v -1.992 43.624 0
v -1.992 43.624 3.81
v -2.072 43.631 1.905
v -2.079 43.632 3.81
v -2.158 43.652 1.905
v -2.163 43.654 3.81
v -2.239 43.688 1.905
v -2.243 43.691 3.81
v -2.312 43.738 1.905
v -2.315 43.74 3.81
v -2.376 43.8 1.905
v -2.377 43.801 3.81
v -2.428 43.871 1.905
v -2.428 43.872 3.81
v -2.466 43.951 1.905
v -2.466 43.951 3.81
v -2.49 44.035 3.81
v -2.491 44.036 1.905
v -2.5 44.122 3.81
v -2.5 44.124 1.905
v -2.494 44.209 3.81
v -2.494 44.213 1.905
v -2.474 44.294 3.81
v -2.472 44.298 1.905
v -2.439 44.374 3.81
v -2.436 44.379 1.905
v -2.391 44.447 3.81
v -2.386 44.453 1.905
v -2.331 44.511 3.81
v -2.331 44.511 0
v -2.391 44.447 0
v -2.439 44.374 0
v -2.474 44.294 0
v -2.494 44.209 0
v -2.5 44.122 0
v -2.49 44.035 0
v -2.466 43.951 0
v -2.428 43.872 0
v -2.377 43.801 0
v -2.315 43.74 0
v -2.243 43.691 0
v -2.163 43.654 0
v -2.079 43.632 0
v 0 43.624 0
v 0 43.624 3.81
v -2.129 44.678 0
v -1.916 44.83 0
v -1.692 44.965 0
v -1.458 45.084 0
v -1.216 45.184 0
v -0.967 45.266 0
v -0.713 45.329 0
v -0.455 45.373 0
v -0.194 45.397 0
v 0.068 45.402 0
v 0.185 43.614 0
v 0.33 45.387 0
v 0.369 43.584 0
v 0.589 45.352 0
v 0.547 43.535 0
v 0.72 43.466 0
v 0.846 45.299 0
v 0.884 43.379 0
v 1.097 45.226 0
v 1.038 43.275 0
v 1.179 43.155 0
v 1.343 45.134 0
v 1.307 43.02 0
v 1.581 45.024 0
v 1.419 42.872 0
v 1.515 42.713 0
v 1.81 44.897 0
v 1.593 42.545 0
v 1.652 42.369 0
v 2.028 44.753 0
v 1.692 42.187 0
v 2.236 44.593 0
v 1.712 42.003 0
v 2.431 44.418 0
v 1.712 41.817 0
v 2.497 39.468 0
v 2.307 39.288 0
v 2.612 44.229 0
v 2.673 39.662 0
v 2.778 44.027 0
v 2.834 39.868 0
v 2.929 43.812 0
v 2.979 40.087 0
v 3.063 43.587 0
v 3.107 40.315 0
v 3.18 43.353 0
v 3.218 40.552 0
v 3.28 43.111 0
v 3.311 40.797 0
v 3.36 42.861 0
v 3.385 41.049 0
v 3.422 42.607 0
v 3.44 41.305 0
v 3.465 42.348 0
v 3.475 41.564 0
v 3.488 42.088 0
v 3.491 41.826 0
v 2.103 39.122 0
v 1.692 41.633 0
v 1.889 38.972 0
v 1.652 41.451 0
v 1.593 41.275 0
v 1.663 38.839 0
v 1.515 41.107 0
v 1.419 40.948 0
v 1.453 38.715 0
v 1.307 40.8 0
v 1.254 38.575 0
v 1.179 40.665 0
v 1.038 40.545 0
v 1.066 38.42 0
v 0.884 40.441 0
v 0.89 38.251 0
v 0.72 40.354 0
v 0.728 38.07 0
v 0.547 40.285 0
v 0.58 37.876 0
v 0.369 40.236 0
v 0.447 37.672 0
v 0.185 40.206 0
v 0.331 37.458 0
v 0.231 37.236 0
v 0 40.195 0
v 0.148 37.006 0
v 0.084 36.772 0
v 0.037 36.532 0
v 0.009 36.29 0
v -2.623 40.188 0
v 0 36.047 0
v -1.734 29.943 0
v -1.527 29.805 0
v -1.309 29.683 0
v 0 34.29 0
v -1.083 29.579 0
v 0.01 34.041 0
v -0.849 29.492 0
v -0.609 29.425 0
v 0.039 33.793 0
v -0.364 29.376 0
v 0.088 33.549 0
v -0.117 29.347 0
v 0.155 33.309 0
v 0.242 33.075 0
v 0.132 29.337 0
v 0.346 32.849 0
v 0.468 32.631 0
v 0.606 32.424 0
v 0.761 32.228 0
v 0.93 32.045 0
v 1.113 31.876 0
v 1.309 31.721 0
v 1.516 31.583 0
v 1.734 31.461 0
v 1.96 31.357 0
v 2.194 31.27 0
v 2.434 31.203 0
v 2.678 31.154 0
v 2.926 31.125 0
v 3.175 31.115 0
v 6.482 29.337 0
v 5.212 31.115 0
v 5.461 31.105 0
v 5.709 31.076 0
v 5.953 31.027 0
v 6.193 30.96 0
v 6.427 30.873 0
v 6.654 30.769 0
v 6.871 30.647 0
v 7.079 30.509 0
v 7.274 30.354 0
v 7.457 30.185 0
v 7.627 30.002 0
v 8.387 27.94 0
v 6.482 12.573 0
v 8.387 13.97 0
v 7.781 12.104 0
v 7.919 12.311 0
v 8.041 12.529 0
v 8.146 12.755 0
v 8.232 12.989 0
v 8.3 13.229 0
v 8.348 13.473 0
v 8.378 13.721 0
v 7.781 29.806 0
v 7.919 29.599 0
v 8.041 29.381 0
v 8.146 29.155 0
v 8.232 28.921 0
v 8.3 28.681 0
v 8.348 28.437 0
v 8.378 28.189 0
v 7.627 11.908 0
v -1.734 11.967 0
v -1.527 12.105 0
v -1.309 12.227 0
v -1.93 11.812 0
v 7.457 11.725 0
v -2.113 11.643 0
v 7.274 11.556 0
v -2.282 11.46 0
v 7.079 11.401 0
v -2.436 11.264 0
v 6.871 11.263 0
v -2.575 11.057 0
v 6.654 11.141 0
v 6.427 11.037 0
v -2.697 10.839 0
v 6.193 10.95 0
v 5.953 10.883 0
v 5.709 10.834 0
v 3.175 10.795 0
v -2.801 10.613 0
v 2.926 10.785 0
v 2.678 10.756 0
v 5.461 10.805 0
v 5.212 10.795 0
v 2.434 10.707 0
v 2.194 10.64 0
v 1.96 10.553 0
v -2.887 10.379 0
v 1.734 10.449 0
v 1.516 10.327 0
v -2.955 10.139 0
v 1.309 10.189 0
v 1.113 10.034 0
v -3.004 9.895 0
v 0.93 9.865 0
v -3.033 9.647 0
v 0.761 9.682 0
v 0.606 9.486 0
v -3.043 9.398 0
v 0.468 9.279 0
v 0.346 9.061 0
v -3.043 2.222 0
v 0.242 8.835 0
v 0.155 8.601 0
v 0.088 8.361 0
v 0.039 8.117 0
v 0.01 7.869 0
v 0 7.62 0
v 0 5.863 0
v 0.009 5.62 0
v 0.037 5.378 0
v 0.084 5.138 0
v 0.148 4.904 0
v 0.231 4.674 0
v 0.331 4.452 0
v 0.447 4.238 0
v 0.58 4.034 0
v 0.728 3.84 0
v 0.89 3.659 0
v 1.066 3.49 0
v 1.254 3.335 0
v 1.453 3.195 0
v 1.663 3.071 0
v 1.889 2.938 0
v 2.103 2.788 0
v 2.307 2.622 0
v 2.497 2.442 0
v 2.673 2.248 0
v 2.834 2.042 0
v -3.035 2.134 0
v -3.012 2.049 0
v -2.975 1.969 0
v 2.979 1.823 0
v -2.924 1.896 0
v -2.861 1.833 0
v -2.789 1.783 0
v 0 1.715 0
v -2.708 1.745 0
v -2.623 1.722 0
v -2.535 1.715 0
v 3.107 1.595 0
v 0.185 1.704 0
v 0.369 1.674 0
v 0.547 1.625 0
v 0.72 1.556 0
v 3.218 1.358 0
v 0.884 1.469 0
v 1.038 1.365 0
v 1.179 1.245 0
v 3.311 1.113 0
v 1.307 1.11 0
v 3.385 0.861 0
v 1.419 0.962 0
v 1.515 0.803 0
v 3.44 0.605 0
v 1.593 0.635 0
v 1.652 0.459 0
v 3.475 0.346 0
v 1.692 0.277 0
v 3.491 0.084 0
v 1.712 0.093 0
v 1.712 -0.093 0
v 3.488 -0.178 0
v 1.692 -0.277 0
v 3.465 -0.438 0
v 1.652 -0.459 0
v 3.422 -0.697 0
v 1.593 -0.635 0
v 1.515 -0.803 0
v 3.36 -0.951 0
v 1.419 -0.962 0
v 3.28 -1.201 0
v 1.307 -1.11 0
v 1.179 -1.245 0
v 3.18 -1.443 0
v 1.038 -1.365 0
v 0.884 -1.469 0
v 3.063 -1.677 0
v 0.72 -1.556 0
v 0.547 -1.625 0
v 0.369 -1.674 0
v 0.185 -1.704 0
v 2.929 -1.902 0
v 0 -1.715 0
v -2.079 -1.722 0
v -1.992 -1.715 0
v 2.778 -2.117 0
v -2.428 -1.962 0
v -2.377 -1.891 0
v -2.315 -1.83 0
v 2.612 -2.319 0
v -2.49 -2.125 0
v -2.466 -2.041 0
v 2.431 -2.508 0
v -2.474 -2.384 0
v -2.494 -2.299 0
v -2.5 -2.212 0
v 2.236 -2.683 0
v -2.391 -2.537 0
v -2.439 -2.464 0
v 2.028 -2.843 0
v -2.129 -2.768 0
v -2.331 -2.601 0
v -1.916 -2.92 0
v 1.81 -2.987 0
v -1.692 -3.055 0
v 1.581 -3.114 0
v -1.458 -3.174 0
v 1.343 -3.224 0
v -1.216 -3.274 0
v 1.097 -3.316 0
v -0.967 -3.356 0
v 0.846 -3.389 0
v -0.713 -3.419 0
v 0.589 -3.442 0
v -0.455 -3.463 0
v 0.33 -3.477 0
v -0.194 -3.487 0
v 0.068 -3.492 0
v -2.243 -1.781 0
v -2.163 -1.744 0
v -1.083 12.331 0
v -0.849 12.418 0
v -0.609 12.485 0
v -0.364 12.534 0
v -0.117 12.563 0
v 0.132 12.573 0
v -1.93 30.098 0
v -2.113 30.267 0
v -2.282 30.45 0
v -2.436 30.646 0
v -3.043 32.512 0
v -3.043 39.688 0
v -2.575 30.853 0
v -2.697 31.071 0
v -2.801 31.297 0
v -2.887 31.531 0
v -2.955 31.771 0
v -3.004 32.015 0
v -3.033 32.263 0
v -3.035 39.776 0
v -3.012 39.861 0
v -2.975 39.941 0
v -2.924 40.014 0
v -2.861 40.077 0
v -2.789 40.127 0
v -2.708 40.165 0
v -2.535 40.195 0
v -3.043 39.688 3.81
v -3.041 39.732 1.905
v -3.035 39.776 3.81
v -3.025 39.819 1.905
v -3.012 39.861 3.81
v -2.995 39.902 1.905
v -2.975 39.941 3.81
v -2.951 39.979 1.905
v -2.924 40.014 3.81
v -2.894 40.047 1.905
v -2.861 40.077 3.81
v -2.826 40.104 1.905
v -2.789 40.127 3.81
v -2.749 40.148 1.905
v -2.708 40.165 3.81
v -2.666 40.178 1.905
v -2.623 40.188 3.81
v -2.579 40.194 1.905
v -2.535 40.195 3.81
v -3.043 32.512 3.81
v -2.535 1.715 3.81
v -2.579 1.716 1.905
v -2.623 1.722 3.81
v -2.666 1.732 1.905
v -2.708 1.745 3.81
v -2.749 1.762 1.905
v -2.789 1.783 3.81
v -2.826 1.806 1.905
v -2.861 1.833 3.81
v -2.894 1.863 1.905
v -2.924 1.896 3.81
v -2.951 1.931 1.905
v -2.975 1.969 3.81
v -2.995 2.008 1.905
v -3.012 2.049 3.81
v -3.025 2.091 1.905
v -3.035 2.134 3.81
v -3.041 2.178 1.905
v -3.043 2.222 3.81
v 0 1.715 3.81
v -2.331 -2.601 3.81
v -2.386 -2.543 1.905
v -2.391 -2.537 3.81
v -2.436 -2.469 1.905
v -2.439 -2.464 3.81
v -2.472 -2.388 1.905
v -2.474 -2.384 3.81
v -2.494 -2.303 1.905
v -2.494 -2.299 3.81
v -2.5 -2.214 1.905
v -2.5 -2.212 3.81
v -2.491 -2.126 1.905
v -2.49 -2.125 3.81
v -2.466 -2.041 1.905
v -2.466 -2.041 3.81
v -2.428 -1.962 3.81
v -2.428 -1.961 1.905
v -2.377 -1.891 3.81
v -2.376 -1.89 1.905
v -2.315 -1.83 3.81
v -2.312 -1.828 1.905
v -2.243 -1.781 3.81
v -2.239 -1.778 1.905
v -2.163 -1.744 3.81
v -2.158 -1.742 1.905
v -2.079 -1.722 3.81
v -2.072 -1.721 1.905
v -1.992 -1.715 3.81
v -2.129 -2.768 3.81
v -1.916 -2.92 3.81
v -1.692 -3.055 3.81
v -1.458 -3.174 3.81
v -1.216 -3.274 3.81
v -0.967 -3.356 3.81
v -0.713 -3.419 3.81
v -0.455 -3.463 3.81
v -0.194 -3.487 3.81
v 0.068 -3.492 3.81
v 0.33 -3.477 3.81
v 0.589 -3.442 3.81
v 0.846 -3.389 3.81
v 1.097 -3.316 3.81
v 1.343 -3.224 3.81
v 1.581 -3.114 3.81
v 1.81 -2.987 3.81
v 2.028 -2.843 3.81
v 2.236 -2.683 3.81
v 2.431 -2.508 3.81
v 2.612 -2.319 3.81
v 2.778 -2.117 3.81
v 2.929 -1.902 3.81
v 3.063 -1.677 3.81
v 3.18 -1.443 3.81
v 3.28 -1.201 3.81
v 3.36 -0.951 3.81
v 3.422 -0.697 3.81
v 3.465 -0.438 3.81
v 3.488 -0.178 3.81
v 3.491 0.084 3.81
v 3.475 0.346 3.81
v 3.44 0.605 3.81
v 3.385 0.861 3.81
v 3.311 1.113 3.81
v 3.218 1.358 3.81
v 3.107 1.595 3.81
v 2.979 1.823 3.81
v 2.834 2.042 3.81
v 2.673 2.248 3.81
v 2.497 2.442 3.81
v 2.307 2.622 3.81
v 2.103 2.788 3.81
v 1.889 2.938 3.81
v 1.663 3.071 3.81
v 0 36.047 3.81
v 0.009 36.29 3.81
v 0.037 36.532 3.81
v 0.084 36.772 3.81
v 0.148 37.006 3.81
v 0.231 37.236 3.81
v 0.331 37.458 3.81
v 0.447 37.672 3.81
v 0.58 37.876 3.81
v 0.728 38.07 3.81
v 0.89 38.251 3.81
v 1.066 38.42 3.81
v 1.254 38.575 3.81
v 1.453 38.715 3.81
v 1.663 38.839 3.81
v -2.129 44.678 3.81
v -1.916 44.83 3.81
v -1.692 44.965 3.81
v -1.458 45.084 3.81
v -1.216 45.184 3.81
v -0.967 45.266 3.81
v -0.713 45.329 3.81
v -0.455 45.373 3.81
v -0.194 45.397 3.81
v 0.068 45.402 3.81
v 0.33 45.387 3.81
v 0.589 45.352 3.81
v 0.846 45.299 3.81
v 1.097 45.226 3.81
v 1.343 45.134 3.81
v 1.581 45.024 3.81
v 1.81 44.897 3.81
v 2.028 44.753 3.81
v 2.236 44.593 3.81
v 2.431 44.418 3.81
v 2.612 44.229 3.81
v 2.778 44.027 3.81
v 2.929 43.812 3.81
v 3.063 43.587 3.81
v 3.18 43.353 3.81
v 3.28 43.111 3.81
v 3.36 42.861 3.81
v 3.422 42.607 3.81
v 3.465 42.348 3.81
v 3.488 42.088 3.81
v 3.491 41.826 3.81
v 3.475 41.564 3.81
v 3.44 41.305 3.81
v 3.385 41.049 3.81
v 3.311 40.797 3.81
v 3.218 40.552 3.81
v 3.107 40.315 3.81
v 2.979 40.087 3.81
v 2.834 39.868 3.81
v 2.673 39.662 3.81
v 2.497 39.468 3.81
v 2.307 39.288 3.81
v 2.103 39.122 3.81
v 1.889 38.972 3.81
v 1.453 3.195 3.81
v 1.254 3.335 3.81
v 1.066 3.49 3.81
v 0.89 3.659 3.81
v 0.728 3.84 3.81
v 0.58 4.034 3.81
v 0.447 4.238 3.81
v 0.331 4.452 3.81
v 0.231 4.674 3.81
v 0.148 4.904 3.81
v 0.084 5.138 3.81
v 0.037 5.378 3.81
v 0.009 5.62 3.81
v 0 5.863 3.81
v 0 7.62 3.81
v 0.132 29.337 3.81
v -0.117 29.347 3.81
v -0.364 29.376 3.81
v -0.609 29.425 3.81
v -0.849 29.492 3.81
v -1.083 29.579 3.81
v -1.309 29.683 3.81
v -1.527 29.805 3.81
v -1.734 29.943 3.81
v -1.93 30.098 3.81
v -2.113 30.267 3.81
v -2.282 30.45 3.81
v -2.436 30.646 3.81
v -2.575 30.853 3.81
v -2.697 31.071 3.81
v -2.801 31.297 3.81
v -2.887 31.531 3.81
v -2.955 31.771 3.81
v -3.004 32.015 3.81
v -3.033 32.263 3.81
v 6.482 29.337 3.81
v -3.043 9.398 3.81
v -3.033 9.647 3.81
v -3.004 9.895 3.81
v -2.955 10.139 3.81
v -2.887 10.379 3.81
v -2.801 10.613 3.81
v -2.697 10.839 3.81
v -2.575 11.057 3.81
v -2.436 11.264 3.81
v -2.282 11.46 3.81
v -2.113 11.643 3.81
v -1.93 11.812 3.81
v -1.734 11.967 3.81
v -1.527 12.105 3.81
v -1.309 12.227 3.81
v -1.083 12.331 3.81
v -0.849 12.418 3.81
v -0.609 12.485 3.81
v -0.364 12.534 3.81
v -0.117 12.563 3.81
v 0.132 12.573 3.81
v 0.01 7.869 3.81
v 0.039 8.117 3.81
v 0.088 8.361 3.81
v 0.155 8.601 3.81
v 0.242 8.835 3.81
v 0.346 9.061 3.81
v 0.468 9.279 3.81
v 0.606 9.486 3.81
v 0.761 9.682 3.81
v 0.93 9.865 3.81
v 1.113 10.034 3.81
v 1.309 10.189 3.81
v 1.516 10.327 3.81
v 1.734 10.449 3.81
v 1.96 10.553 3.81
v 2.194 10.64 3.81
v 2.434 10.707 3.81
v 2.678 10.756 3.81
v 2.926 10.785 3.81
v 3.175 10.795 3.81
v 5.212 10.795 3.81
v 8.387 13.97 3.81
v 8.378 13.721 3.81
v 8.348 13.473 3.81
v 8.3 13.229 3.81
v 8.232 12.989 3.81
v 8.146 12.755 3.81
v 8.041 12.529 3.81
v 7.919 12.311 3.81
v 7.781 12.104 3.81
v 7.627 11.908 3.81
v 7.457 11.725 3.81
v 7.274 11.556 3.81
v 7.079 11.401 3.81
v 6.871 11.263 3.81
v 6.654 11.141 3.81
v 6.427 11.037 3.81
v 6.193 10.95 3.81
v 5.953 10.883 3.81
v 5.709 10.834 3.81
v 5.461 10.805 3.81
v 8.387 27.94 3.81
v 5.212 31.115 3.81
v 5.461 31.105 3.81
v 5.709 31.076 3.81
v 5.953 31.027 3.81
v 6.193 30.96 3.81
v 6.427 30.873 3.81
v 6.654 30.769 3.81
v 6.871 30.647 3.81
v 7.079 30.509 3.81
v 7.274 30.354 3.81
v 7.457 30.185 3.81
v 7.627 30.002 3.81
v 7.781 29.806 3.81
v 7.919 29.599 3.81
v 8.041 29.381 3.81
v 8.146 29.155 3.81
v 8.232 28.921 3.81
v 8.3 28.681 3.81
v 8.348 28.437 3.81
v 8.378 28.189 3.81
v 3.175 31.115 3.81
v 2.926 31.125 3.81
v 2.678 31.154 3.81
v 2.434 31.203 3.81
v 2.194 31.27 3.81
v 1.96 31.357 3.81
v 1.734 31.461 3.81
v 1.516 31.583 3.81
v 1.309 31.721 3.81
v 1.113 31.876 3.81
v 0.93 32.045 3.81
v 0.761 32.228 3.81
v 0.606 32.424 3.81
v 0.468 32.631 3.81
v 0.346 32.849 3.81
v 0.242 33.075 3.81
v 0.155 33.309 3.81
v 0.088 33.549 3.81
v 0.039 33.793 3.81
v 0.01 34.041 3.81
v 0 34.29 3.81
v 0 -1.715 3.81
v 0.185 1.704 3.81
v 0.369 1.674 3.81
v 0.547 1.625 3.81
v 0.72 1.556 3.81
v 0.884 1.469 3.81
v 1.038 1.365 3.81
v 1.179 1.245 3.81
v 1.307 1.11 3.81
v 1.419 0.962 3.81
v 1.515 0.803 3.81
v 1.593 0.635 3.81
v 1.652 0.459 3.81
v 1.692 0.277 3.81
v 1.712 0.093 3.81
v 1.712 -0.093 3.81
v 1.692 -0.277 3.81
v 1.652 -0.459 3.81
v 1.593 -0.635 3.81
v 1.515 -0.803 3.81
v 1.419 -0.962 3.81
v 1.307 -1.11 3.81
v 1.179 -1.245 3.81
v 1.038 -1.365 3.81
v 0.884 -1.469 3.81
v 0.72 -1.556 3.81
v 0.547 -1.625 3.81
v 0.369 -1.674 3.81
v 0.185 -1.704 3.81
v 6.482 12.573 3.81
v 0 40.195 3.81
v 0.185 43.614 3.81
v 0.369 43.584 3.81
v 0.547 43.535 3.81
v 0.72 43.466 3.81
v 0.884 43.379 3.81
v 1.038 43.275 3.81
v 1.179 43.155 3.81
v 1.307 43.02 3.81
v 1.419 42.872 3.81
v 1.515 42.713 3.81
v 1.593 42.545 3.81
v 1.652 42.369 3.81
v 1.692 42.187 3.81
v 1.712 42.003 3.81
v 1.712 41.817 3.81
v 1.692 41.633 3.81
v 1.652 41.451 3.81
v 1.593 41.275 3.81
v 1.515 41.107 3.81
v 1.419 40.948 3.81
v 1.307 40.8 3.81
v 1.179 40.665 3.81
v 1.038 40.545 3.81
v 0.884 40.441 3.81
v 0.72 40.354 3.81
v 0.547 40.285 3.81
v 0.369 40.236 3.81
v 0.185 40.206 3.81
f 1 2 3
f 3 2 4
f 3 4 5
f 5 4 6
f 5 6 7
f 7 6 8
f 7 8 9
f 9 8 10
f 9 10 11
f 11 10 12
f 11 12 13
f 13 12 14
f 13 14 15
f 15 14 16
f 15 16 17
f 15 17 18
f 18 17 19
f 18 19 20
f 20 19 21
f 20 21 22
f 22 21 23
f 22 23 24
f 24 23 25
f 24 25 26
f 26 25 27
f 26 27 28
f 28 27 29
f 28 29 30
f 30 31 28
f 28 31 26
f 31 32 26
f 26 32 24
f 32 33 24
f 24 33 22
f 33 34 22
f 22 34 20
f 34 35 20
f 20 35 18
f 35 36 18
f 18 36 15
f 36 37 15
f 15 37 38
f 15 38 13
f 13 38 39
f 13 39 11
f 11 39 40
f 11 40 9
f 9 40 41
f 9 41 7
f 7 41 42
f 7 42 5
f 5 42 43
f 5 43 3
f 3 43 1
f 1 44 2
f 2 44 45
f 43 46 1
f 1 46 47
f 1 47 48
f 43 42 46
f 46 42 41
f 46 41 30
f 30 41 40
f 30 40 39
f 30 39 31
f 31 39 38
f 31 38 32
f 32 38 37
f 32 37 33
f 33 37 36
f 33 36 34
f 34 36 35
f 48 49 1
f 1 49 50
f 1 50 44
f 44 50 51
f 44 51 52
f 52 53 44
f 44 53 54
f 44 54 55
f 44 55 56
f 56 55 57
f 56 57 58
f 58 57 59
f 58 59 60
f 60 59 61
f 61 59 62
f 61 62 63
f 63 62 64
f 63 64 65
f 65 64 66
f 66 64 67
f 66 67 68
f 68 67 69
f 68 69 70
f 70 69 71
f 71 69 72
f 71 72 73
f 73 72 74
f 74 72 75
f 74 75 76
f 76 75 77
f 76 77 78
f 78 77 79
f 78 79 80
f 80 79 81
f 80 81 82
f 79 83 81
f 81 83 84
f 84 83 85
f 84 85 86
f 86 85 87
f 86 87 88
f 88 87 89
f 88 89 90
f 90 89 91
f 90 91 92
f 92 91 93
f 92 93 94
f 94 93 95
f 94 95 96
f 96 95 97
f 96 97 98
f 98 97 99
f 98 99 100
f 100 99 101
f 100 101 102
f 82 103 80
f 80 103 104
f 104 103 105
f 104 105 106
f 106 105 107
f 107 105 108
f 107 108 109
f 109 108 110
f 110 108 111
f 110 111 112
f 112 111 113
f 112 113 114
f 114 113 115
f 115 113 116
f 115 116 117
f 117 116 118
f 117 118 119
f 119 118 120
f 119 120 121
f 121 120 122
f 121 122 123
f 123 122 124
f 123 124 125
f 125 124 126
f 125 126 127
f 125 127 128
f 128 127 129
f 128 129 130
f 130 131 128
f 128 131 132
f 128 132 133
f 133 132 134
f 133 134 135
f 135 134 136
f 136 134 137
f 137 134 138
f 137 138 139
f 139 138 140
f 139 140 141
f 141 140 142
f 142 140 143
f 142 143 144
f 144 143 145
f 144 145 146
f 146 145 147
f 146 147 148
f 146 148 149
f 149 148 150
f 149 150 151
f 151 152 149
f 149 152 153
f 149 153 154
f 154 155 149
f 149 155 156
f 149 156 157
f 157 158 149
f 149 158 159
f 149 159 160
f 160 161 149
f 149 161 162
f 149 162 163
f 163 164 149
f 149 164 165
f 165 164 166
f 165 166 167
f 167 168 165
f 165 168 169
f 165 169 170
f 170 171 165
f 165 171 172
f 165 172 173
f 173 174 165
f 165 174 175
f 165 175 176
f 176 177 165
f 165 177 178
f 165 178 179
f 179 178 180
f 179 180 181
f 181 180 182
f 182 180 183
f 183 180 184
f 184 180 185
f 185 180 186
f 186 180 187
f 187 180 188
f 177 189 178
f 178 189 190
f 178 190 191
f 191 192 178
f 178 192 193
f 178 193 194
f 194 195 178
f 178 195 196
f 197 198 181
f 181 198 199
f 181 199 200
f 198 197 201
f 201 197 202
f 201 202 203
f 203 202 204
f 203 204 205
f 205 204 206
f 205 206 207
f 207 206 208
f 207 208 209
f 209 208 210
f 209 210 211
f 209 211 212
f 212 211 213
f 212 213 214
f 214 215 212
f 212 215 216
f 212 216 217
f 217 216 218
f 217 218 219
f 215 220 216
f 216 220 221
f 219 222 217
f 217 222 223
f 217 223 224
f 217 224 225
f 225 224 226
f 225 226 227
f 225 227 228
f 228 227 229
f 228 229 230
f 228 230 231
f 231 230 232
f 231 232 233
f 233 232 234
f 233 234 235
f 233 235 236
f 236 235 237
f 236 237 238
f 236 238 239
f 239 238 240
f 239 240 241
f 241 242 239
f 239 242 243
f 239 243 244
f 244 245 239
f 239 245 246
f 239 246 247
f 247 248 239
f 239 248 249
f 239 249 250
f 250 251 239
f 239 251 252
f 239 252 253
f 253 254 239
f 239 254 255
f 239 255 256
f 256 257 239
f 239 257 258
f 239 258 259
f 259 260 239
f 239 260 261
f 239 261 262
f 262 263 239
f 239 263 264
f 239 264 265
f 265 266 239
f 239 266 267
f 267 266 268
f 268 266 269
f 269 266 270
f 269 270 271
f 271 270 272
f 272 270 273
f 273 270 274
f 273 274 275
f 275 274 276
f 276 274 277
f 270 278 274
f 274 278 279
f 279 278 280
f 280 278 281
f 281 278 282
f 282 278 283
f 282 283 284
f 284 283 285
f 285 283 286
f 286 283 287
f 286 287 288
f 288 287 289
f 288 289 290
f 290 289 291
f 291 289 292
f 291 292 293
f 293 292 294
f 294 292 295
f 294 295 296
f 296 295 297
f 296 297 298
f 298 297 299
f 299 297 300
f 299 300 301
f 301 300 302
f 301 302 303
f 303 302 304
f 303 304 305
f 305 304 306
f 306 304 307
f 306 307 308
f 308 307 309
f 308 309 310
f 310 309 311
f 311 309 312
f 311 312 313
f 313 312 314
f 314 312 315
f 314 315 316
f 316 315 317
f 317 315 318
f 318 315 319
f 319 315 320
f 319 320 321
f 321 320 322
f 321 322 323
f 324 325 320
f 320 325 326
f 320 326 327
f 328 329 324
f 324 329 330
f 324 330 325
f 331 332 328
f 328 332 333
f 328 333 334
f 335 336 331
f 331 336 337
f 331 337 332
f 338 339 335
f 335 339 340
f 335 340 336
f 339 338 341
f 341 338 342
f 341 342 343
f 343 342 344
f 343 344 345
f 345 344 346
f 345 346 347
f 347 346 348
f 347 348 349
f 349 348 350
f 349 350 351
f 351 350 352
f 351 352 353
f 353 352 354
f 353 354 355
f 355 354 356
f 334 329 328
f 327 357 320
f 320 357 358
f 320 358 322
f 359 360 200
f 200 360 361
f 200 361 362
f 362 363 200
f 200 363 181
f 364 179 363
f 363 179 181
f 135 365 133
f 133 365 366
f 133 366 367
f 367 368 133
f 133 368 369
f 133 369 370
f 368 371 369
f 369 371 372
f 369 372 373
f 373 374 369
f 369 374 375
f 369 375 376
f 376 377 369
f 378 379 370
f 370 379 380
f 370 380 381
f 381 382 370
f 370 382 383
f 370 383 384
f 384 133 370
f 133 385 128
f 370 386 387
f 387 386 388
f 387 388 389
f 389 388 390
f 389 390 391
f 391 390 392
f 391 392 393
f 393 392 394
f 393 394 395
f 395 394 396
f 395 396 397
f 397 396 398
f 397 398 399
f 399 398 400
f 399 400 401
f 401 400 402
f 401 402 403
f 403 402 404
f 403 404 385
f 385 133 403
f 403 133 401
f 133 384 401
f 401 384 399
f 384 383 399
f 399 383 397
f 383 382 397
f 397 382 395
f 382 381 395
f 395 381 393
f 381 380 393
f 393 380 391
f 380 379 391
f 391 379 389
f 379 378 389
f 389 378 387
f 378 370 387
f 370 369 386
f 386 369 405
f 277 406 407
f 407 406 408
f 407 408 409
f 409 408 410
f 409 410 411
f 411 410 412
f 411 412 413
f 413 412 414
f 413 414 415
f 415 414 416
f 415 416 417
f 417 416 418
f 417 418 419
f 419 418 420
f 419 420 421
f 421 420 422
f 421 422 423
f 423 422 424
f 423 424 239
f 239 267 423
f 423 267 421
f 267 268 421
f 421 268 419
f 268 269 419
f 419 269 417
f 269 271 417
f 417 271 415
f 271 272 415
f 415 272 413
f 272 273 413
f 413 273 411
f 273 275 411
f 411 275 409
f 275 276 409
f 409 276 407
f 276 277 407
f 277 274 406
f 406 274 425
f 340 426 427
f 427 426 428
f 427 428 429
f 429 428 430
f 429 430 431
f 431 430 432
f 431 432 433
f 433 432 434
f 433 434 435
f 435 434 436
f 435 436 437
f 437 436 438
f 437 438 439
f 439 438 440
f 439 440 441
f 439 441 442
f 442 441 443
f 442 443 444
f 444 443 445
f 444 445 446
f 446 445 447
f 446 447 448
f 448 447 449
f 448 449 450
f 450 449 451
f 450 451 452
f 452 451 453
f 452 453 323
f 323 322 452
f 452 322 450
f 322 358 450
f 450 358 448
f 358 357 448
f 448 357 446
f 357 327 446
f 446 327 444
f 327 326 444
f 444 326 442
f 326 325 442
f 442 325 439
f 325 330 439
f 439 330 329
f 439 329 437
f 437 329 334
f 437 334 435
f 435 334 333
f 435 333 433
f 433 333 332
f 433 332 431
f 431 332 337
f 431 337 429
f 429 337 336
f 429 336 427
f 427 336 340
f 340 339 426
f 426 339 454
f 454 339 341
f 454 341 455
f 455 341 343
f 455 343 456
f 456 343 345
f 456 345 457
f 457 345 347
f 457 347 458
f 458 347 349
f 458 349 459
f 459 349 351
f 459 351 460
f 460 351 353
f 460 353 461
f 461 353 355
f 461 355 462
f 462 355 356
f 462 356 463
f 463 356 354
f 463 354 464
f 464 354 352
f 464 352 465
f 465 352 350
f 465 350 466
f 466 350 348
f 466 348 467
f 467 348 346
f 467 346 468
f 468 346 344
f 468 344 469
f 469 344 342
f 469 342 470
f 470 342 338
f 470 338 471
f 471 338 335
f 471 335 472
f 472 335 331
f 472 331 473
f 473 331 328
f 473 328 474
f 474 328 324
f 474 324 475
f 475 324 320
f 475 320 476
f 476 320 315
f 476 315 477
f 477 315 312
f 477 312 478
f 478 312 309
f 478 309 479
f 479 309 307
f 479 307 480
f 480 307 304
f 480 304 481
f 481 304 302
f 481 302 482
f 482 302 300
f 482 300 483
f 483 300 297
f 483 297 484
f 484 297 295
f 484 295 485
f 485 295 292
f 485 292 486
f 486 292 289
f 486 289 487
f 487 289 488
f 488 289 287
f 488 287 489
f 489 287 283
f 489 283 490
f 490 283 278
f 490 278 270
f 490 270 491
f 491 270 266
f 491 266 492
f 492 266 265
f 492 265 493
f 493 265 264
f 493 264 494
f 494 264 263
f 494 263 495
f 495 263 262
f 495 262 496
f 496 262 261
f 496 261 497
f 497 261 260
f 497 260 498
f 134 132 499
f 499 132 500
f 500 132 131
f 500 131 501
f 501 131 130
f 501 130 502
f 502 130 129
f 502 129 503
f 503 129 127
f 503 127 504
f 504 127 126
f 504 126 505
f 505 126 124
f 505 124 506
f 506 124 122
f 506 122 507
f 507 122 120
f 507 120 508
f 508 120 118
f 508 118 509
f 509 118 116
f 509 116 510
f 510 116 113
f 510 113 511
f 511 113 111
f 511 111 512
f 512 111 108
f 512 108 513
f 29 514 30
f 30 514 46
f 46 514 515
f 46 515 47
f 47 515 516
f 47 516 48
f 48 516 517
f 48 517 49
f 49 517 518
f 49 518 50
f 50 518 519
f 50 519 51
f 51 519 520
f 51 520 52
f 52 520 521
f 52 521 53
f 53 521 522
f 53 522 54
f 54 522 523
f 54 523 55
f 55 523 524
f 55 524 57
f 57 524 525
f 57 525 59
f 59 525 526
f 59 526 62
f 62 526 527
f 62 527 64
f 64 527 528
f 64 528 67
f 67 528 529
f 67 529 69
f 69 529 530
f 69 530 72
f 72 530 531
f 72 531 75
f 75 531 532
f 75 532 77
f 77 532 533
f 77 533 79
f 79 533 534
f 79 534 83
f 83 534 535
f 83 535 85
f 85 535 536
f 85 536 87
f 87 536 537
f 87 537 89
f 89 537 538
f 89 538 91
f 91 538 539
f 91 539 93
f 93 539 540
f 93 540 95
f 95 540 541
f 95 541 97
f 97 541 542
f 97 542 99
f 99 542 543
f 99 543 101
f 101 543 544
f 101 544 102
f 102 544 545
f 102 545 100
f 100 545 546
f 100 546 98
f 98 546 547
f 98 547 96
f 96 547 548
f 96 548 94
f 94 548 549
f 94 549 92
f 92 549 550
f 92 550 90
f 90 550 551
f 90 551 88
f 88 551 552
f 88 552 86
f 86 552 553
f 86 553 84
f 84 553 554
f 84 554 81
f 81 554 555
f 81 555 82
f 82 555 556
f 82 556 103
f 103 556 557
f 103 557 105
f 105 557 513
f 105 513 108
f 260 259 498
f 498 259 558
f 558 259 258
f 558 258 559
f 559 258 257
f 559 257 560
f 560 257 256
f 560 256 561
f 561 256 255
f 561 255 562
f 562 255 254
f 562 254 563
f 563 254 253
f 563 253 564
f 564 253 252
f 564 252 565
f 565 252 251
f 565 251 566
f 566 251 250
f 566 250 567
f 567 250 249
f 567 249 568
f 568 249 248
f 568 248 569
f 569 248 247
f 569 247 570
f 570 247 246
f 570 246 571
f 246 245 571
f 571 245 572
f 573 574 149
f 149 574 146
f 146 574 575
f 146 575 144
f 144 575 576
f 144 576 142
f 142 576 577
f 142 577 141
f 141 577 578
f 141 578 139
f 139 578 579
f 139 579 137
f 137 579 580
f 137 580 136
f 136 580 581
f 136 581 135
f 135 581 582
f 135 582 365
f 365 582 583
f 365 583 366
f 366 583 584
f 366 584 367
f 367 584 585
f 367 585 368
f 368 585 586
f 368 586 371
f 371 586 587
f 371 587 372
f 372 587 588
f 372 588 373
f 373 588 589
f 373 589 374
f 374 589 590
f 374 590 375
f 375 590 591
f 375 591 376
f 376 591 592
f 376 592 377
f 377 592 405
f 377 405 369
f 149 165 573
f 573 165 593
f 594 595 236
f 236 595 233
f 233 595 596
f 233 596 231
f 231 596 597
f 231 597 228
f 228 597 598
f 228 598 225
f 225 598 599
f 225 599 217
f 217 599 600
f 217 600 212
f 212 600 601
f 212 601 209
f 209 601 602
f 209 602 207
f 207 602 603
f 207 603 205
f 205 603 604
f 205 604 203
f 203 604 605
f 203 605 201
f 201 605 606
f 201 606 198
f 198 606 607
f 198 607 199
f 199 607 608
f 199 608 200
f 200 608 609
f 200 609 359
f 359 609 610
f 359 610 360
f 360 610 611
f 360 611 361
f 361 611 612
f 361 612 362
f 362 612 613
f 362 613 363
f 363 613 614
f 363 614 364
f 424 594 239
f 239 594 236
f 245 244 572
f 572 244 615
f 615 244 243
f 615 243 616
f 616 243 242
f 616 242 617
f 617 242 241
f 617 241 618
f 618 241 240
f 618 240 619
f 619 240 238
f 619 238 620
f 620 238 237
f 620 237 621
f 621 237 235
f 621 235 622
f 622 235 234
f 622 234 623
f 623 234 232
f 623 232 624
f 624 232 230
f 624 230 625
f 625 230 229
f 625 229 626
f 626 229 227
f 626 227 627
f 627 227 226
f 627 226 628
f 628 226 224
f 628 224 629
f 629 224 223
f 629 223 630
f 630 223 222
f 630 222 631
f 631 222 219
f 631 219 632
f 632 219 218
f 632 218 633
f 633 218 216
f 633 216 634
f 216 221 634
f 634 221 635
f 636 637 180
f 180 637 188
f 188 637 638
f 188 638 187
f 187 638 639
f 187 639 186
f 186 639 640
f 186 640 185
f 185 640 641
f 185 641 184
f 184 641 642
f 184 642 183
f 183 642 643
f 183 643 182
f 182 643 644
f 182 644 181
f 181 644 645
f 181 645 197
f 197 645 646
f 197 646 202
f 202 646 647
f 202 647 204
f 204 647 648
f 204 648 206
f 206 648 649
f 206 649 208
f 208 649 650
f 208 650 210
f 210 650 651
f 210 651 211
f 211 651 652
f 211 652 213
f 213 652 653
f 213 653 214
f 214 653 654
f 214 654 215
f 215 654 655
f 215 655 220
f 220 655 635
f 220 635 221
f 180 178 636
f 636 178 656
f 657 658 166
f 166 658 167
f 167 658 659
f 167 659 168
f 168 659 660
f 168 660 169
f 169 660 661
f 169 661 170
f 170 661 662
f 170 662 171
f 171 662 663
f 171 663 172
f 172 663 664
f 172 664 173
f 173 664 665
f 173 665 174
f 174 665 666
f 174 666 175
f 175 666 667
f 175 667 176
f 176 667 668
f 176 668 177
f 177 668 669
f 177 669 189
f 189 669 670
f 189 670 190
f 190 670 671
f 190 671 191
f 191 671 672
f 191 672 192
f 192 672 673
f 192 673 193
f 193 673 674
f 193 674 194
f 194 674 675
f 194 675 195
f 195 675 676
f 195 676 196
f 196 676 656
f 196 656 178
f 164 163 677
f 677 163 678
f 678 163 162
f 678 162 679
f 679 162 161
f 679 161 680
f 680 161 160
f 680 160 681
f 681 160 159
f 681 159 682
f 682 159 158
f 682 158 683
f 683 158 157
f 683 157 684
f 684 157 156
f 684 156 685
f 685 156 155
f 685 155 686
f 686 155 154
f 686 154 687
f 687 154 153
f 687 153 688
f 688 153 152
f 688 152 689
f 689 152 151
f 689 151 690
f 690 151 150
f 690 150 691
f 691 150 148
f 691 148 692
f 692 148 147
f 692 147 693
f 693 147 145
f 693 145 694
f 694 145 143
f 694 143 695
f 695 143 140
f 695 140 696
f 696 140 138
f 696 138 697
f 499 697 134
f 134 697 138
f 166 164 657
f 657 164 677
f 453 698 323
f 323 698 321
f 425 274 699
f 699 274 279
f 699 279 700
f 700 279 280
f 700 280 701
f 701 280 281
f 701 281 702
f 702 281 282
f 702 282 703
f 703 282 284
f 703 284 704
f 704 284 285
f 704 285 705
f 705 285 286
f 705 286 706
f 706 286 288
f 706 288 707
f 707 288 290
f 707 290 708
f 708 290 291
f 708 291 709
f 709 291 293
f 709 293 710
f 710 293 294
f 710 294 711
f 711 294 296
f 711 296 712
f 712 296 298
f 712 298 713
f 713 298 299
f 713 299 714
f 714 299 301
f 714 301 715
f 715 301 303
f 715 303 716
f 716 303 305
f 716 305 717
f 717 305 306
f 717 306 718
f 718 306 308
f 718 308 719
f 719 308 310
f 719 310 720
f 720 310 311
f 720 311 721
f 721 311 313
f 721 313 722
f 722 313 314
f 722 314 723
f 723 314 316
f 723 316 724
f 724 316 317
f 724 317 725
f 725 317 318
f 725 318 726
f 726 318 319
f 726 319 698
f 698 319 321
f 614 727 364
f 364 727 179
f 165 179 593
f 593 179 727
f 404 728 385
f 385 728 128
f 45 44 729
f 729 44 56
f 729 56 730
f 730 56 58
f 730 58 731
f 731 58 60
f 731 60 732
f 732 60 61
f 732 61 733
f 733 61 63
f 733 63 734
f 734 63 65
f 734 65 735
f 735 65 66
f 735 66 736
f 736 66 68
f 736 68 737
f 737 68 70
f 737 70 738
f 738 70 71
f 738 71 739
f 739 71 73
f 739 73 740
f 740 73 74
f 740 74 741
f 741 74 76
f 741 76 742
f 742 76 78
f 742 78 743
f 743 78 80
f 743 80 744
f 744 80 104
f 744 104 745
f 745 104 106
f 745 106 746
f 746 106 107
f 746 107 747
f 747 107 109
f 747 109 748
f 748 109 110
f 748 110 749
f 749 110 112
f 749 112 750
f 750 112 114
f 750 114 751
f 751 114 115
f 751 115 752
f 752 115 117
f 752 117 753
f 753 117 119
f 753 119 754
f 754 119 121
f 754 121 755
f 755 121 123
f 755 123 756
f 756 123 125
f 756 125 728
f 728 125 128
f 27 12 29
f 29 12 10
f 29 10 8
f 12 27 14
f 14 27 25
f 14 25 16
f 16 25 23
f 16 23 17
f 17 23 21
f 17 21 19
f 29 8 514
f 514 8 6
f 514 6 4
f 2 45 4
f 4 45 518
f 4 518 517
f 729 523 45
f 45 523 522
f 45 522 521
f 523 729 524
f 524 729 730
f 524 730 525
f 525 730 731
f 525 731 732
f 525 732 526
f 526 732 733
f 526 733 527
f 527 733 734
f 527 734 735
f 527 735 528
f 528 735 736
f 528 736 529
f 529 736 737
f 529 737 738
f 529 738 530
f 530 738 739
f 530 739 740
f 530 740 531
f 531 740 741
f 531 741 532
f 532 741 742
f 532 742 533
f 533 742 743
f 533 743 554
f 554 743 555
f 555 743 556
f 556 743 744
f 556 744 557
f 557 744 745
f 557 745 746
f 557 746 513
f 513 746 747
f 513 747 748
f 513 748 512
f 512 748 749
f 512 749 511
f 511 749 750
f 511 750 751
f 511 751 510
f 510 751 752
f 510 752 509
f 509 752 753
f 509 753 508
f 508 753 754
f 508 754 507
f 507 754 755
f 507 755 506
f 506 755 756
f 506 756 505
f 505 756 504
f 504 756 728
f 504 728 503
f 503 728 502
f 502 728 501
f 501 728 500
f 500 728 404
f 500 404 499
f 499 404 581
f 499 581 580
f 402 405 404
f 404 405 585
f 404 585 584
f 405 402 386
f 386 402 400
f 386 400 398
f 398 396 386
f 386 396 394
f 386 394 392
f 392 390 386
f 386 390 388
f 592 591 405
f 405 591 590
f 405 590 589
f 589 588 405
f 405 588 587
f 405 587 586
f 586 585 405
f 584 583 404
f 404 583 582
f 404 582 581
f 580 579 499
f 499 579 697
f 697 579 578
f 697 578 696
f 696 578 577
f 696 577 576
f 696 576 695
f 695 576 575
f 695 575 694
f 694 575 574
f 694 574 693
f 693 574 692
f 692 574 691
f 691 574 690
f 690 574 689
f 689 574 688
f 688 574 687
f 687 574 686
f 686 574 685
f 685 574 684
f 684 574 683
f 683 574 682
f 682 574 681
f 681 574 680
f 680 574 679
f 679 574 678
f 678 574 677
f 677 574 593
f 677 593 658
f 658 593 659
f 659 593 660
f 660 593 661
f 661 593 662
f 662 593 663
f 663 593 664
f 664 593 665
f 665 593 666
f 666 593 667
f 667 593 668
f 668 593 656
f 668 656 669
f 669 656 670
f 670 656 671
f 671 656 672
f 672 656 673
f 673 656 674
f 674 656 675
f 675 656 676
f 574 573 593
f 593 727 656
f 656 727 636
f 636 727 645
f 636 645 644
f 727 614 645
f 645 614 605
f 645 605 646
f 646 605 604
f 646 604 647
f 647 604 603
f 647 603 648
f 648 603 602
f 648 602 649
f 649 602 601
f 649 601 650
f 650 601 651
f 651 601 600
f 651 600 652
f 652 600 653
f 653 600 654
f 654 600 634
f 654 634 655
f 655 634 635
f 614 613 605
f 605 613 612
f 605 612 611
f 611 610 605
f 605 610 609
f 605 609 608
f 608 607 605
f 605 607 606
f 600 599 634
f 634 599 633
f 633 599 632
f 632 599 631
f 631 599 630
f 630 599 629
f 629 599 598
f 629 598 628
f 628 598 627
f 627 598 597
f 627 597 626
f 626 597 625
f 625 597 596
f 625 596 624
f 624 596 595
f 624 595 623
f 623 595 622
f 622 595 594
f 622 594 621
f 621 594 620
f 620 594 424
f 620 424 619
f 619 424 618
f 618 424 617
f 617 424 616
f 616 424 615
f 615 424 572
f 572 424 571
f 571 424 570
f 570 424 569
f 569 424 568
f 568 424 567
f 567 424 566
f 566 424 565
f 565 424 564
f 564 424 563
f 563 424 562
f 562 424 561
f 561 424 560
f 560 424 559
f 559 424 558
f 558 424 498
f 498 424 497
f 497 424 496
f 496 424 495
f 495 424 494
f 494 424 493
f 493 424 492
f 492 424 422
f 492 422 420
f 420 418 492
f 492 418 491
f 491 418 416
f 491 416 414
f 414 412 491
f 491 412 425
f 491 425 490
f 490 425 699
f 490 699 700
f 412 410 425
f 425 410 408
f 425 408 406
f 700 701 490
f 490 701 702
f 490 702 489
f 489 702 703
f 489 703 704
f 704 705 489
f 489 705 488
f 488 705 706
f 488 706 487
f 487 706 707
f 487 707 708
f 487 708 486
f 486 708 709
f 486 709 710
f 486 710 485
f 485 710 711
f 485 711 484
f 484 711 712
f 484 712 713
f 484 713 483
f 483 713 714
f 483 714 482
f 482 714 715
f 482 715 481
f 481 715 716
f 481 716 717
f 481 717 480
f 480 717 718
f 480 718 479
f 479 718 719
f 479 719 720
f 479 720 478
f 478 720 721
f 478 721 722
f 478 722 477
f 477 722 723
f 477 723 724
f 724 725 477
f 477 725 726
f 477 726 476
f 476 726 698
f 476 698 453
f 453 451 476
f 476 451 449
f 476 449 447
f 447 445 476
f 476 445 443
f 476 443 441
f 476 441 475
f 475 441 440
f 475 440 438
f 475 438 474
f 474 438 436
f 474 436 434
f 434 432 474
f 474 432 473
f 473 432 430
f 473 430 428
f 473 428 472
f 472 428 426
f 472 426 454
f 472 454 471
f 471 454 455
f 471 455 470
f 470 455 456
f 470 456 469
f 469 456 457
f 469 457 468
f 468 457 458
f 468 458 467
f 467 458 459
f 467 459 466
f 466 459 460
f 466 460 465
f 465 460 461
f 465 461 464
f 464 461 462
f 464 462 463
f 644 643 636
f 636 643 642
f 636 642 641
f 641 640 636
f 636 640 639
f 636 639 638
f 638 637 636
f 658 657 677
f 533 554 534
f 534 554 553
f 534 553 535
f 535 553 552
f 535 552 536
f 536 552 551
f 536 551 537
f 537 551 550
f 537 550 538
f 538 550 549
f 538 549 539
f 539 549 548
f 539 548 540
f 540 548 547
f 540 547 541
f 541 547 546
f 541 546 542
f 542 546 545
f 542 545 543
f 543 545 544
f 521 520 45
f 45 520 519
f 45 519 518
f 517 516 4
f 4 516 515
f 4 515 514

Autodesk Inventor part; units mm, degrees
ref_plane "YZ Plane" through (0, 0, 0) normal (1, 0, 0) x (0, 1, 0)
ref_plane "XZ Plane" through (0, 0, 0) normal (0, 1, 0) x (-1, 0, 0)
ref_plane "XY Plane" through (0, 0, 0) normal (0, 0, 1) x (1, 0, 0)
sketch "Sketch1" plane through (0, 0, 0) normal (0, 0, 1) x (1, 0, 0)
  arc A0 (0, -1.7145) -> (0, 1.7145) centre (0, 0) ccw
  arc A1 (-3.0427, -1.7145) -> (0, 3.4925) centre (0, 0) ccw
  arc A2 (0, 40.1955) -> (0, 43.6245) centre (0, 41.91) ccw
  arc A3 (0, 38.4175) -> (-3.0427, 43.6245) centre (0, 41.91) ccw
  line L0 (0, 40.1955) -> (-3.0427, 40.1955)
  line L1 (-3.0427, 1.7145) -> (0, 1.7145)
  line L2 (-3.0427, 29.337) -> (6.4823, 29.337)
  line L3 (6.4823, 29.337) -> (6.4823, 12.573)
  line L4 (6.4823, 12.573) -> (-3.0427, 12.573)
  line L5 (0, 3.4925) -> (0, 10.795)
  line L6 (0, 10.795) -> (8.3873, 10.795)
  line L7 (8.3873, 10.795) -> (8.3873, 31.115)
  line L8 (8.3873, 31.115) -> (0, 31.115)
  line L9 (0, 31.115) -> (0, 38.4175)
  line L10 (0, 43.6245) -> (-3.0427, 43.6245)
  line L11 (0, -1.7145) -> (-3.0427, -1.7145)
  line L12 (-3.0427, 40.1955) -> (-3.0427, 29.337)
  line L13 (-3.0427, 12.573) -> (-3.0427, 1.7145)
  point P0 (8.3873, 20.955)
  point P1 (6.4823, 20.955)
  dimension "d0" = 3.429
  dimension "d1" = 6.985
  dimension "d2" = 41.91
  dimension "d5" = 20.955
  dimension "d6" = 16.764
  dimension "d7" = 9.525
  dimension "d8" = 20.32
  dimension "d9" = 11.43
extrude "Extrusion1" add sketch "Sketch1" along normal blind 3.81
fillet "Fillet1" radius 3.175 8 edges at (0, 31.115, 1.905) (8.3873, 31.115, 1.905) (8.3873, 10.795, 1.905) (0, 10.795, 1.905) (-3.0427, 12.573, 1.905) (-3.0427, 29.337, 1.905) (0, 3.4925, 1.905) (0, 38.4175, 1.905)
fillet "Fillet2" radius 0.508 4 edges at (-3.0427, -1.7145, 1.905) (-3.0427, 1.7145, 1.905) (-3.0427, 40.1955, 1.905) (-3.0427, 43.6245, 1.905)
equation "\"d5\" = 0.5 * d2"
properties part number "batteryConnectorHolder" material "ABS Plastic"
